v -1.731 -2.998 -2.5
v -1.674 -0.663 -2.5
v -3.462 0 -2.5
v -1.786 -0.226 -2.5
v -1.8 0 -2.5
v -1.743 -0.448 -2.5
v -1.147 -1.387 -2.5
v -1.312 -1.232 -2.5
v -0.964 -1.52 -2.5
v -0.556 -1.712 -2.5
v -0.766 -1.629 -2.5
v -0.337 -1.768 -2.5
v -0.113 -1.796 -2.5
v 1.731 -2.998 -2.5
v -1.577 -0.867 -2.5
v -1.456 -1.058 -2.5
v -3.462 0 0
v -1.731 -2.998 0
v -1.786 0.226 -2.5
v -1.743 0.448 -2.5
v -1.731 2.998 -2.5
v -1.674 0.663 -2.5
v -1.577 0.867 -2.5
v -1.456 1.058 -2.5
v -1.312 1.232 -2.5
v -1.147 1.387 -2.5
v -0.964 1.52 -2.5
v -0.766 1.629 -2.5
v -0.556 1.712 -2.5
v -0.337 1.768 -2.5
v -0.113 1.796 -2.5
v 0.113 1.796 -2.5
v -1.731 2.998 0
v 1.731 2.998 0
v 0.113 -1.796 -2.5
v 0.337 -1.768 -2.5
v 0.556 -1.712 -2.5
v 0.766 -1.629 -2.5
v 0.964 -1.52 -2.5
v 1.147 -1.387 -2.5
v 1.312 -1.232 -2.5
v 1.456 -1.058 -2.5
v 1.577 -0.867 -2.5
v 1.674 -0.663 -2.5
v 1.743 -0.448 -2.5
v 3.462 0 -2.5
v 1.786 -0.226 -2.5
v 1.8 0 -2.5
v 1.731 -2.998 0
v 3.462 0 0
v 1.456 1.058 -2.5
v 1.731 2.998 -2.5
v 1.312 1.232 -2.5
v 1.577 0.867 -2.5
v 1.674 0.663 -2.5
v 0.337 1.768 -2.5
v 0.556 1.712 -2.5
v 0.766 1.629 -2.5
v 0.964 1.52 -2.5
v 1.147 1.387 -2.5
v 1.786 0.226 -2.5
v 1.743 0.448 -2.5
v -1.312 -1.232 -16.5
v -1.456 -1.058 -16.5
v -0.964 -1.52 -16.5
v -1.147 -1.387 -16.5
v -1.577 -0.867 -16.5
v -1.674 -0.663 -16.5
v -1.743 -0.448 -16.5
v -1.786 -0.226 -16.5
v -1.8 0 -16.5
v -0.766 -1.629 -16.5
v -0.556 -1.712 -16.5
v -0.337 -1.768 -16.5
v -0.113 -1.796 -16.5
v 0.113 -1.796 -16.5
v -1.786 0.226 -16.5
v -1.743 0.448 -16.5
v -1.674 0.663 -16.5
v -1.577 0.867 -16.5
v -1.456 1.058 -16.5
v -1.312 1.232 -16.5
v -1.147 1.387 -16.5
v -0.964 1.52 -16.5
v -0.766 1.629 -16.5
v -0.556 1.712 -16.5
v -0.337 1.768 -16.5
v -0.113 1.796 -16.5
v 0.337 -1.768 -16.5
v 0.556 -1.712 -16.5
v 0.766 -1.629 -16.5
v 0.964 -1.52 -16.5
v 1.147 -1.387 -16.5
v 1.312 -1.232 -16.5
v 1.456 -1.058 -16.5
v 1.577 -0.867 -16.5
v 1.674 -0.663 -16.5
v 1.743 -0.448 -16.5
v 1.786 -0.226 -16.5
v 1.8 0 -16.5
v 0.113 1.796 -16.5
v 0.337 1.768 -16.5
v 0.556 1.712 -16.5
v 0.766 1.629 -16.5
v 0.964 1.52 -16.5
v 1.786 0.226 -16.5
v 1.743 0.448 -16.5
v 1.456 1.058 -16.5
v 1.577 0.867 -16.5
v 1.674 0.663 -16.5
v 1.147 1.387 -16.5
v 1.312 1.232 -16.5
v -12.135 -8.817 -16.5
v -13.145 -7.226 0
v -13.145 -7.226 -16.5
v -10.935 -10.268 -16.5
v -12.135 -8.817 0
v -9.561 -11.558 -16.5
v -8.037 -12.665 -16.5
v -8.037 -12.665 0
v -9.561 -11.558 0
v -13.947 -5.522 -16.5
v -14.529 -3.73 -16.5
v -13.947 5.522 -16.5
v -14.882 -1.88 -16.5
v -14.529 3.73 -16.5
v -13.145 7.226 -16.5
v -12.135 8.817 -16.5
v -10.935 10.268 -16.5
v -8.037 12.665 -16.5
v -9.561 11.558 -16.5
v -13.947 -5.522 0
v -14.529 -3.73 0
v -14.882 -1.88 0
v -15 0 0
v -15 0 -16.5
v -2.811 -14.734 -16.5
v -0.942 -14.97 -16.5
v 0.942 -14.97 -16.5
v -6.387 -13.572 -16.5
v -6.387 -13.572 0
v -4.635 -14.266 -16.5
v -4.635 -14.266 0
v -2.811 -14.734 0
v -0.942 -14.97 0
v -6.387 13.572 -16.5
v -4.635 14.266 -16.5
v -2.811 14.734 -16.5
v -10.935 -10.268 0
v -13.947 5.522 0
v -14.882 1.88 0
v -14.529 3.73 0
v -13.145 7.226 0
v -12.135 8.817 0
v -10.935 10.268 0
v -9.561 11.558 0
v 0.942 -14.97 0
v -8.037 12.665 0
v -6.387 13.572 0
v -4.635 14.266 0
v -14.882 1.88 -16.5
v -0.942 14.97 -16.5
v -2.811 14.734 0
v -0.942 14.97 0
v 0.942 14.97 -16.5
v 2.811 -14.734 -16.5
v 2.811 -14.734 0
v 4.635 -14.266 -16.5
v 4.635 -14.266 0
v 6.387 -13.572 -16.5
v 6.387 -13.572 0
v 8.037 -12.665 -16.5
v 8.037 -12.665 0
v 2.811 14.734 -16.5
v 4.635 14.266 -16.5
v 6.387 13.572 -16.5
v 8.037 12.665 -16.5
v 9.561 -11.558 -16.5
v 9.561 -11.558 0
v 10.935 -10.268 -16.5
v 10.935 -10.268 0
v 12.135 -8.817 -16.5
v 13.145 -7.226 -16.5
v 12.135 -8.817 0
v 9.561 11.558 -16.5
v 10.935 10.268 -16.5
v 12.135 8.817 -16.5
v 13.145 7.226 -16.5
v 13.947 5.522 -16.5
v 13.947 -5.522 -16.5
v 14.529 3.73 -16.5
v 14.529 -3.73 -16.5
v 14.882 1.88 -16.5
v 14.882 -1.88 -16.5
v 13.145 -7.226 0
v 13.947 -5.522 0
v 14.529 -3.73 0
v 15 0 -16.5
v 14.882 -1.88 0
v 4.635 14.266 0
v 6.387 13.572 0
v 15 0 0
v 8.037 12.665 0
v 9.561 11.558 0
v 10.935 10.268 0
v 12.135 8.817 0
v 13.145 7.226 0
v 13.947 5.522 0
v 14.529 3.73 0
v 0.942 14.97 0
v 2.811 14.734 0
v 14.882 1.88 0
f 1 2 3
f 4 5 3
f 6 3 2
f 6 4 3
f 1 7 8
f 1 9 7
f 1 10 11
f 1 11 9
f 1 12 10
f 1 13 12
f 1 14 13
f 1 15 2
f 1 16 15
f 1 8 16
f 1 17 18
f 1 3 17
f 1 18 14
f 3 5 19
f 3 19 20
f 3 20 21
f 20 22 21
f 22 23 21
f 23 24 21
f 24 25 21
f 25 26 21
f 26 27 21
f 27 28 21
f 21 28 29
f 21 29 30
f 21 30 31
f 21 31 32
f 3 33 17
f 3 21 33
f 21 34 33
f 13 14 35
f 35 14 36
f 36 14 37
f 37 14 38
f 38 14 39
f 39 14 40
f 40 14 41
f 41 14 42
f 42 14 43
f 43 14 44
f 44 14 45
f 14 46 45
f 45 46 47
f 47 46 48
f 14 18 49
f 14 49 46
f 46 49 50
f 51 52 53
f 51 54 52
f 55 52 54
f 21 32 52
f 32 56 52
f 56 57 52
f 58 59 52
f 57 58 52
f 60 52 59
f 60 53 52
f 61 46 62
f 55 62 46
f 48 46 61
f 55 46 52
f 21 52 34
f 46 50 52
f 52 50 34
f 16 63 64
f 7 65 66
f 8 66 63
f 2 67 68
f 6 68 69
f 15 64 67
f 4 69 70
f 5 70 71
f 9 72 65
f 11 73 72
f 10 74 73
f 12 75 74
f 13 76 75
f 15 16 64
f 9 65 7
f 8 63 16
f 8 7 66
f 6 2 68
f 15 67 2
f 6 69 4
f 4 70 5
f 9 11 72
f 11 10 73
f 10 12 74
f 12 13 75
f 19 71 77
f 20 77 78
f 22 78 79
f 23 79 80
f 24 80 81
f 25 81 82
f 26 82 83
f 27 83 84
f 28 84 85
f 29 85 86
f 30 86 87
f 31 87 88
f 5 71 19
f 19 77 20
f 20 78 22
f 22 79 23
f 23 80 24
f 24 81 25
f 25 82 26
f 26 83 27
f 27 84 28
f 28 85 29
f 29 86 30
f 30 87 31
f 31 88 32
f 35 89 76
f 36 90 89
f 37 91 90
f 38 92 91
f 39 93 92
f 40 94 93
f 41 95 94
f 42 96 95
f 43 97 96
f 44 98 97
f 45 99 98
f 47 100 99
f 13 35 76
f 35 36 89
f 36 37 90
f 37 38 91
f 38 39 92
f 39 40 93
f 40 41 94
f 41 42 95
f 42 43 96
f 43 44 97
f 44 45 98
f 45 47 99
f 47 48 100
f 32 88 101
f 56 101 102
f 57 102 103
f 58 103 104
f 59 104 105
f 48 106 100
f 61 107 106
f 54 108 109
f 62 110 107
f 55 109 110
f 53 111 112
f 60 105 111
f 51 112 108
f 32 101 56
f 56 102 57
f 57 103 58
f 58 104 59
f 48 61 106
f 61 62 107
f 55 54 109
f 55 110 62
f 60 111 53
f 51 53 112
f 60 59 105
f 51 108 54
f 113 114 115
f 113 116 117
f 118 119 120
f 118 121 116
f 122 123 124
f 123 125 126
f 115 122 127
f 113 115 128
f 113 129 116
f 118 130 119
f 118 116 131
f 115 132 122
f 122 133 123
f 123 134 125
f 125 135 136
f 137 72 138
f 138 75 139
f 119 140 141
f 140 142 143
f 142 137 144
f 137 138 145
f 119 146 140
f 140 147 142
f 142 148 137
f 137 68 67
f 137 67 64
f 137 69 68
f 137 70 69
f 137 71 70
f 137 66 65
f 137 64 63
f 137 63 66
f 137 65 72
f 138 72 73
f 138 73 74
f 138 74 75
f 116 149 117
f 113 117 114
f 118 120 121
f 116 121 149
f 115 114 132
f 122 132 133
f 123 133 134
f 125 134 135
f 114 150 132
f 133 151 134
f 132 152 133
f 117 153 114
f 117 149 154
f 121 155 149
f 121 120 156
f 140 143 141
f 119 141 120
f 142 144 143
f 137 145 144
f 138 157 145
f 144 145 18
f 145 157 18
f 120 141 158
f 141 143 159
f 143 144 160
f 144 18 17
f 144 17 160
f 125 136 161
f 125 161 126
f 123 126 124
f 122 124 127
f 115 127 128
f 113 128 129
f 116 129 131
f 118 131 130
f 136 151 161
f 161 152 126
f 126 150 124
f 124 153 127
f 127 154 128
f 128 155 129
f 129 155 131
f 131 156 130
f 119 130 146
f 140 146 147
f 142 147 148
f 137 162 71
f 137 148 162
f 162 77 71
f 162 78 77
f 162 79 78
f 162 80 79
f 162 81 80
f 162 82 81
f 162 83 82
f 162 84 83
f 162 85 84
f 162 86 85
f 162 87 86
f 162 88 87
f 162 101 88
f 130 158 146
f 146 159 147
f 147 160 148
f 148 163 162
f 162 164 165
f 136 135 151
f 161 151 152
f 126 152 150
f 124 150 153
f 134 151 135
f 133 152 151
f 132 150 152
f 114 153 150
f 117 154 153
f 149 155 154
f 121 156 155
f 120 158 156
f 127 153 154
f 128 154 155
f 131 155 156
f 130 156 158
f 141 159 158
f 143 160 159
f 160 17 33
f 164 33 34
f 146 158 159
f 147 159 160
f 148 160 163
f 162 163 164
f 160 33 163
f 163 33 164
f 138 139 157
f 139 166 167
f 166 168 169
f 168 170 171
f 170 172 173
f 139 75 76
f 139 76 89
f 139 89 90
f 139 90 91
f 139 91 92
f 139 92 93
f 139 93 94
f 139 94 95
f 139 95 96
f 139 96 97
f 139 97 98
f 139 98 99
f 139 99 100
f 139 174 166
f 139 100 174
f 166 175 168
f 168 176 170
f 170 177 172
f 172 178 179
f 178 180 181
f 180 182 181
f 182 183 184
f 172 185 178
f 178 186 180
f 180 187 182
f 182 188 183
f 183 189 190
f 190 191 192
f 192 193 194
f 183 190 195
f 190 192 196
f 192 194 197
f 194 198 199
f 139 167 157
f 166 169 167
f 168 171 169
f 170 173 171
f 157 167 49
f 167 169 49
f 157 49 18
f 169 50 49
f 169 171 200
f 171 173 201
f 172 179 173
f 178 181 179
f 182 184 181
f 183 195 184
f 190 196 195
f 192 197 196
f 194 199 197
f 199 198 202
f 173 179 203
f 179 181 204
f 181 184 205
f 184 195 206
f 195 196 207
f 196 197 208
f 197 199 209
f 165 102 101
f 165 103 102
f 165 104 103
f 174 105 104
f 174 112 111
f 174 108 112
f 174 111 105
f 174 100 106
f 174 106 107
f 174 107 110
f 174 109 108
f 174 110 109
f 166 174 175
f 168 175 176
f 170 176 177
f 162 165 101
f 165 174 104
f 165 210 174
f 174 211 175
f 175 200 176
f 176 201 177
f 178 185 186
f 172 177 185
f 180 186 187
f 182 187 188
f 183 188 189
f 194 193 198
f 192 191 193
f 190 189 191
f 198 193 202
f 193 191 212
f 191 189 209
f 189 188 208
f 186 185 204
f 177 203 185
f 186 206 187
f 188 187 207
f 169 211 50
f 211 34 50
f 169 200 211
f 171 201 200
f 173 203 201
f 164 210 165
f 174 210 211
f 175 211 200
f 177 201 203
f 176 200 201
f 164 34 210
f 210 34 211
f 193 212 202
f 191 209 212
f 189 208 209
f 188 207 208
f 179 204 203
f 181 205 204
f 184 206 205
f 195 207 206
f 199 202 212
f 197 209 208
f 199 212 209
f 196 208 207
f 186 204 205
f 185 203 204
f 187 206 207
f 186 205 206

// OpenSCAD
$fn = 50;

difference() {
	union() {
		translate(v = [0, 0, -16.5]) {
			cylinder(h = 16.5, r = 15.0);
		}
	}
	union() {
		translate(v = [0, 0, 0]) {
			rotate(a = [0, 0, 0]) {
				difference() {
					union() {
						translate(v = [0, 0, -2.5]) {
							linear_extrude(height = 2.5) {
								polygon(points = [[3.4619999999999997, 0.0], [1.7310000000000003, 2.9981799479017264], [-1.7309999999999992, 2.9981799479017264], [-3.4619999999999997, 4.2397272186481365e-16], [-1.7310000000000014, -2.998179947901726], [1.7309999999999977, -2.9981799479017277]]);
							}
						}
					}
					union();
				}
			}
		}
		#translate(v = [0, 0, -100.0]) {
			cylinder(h = 200, r = 1.8);
		}
	}
}
